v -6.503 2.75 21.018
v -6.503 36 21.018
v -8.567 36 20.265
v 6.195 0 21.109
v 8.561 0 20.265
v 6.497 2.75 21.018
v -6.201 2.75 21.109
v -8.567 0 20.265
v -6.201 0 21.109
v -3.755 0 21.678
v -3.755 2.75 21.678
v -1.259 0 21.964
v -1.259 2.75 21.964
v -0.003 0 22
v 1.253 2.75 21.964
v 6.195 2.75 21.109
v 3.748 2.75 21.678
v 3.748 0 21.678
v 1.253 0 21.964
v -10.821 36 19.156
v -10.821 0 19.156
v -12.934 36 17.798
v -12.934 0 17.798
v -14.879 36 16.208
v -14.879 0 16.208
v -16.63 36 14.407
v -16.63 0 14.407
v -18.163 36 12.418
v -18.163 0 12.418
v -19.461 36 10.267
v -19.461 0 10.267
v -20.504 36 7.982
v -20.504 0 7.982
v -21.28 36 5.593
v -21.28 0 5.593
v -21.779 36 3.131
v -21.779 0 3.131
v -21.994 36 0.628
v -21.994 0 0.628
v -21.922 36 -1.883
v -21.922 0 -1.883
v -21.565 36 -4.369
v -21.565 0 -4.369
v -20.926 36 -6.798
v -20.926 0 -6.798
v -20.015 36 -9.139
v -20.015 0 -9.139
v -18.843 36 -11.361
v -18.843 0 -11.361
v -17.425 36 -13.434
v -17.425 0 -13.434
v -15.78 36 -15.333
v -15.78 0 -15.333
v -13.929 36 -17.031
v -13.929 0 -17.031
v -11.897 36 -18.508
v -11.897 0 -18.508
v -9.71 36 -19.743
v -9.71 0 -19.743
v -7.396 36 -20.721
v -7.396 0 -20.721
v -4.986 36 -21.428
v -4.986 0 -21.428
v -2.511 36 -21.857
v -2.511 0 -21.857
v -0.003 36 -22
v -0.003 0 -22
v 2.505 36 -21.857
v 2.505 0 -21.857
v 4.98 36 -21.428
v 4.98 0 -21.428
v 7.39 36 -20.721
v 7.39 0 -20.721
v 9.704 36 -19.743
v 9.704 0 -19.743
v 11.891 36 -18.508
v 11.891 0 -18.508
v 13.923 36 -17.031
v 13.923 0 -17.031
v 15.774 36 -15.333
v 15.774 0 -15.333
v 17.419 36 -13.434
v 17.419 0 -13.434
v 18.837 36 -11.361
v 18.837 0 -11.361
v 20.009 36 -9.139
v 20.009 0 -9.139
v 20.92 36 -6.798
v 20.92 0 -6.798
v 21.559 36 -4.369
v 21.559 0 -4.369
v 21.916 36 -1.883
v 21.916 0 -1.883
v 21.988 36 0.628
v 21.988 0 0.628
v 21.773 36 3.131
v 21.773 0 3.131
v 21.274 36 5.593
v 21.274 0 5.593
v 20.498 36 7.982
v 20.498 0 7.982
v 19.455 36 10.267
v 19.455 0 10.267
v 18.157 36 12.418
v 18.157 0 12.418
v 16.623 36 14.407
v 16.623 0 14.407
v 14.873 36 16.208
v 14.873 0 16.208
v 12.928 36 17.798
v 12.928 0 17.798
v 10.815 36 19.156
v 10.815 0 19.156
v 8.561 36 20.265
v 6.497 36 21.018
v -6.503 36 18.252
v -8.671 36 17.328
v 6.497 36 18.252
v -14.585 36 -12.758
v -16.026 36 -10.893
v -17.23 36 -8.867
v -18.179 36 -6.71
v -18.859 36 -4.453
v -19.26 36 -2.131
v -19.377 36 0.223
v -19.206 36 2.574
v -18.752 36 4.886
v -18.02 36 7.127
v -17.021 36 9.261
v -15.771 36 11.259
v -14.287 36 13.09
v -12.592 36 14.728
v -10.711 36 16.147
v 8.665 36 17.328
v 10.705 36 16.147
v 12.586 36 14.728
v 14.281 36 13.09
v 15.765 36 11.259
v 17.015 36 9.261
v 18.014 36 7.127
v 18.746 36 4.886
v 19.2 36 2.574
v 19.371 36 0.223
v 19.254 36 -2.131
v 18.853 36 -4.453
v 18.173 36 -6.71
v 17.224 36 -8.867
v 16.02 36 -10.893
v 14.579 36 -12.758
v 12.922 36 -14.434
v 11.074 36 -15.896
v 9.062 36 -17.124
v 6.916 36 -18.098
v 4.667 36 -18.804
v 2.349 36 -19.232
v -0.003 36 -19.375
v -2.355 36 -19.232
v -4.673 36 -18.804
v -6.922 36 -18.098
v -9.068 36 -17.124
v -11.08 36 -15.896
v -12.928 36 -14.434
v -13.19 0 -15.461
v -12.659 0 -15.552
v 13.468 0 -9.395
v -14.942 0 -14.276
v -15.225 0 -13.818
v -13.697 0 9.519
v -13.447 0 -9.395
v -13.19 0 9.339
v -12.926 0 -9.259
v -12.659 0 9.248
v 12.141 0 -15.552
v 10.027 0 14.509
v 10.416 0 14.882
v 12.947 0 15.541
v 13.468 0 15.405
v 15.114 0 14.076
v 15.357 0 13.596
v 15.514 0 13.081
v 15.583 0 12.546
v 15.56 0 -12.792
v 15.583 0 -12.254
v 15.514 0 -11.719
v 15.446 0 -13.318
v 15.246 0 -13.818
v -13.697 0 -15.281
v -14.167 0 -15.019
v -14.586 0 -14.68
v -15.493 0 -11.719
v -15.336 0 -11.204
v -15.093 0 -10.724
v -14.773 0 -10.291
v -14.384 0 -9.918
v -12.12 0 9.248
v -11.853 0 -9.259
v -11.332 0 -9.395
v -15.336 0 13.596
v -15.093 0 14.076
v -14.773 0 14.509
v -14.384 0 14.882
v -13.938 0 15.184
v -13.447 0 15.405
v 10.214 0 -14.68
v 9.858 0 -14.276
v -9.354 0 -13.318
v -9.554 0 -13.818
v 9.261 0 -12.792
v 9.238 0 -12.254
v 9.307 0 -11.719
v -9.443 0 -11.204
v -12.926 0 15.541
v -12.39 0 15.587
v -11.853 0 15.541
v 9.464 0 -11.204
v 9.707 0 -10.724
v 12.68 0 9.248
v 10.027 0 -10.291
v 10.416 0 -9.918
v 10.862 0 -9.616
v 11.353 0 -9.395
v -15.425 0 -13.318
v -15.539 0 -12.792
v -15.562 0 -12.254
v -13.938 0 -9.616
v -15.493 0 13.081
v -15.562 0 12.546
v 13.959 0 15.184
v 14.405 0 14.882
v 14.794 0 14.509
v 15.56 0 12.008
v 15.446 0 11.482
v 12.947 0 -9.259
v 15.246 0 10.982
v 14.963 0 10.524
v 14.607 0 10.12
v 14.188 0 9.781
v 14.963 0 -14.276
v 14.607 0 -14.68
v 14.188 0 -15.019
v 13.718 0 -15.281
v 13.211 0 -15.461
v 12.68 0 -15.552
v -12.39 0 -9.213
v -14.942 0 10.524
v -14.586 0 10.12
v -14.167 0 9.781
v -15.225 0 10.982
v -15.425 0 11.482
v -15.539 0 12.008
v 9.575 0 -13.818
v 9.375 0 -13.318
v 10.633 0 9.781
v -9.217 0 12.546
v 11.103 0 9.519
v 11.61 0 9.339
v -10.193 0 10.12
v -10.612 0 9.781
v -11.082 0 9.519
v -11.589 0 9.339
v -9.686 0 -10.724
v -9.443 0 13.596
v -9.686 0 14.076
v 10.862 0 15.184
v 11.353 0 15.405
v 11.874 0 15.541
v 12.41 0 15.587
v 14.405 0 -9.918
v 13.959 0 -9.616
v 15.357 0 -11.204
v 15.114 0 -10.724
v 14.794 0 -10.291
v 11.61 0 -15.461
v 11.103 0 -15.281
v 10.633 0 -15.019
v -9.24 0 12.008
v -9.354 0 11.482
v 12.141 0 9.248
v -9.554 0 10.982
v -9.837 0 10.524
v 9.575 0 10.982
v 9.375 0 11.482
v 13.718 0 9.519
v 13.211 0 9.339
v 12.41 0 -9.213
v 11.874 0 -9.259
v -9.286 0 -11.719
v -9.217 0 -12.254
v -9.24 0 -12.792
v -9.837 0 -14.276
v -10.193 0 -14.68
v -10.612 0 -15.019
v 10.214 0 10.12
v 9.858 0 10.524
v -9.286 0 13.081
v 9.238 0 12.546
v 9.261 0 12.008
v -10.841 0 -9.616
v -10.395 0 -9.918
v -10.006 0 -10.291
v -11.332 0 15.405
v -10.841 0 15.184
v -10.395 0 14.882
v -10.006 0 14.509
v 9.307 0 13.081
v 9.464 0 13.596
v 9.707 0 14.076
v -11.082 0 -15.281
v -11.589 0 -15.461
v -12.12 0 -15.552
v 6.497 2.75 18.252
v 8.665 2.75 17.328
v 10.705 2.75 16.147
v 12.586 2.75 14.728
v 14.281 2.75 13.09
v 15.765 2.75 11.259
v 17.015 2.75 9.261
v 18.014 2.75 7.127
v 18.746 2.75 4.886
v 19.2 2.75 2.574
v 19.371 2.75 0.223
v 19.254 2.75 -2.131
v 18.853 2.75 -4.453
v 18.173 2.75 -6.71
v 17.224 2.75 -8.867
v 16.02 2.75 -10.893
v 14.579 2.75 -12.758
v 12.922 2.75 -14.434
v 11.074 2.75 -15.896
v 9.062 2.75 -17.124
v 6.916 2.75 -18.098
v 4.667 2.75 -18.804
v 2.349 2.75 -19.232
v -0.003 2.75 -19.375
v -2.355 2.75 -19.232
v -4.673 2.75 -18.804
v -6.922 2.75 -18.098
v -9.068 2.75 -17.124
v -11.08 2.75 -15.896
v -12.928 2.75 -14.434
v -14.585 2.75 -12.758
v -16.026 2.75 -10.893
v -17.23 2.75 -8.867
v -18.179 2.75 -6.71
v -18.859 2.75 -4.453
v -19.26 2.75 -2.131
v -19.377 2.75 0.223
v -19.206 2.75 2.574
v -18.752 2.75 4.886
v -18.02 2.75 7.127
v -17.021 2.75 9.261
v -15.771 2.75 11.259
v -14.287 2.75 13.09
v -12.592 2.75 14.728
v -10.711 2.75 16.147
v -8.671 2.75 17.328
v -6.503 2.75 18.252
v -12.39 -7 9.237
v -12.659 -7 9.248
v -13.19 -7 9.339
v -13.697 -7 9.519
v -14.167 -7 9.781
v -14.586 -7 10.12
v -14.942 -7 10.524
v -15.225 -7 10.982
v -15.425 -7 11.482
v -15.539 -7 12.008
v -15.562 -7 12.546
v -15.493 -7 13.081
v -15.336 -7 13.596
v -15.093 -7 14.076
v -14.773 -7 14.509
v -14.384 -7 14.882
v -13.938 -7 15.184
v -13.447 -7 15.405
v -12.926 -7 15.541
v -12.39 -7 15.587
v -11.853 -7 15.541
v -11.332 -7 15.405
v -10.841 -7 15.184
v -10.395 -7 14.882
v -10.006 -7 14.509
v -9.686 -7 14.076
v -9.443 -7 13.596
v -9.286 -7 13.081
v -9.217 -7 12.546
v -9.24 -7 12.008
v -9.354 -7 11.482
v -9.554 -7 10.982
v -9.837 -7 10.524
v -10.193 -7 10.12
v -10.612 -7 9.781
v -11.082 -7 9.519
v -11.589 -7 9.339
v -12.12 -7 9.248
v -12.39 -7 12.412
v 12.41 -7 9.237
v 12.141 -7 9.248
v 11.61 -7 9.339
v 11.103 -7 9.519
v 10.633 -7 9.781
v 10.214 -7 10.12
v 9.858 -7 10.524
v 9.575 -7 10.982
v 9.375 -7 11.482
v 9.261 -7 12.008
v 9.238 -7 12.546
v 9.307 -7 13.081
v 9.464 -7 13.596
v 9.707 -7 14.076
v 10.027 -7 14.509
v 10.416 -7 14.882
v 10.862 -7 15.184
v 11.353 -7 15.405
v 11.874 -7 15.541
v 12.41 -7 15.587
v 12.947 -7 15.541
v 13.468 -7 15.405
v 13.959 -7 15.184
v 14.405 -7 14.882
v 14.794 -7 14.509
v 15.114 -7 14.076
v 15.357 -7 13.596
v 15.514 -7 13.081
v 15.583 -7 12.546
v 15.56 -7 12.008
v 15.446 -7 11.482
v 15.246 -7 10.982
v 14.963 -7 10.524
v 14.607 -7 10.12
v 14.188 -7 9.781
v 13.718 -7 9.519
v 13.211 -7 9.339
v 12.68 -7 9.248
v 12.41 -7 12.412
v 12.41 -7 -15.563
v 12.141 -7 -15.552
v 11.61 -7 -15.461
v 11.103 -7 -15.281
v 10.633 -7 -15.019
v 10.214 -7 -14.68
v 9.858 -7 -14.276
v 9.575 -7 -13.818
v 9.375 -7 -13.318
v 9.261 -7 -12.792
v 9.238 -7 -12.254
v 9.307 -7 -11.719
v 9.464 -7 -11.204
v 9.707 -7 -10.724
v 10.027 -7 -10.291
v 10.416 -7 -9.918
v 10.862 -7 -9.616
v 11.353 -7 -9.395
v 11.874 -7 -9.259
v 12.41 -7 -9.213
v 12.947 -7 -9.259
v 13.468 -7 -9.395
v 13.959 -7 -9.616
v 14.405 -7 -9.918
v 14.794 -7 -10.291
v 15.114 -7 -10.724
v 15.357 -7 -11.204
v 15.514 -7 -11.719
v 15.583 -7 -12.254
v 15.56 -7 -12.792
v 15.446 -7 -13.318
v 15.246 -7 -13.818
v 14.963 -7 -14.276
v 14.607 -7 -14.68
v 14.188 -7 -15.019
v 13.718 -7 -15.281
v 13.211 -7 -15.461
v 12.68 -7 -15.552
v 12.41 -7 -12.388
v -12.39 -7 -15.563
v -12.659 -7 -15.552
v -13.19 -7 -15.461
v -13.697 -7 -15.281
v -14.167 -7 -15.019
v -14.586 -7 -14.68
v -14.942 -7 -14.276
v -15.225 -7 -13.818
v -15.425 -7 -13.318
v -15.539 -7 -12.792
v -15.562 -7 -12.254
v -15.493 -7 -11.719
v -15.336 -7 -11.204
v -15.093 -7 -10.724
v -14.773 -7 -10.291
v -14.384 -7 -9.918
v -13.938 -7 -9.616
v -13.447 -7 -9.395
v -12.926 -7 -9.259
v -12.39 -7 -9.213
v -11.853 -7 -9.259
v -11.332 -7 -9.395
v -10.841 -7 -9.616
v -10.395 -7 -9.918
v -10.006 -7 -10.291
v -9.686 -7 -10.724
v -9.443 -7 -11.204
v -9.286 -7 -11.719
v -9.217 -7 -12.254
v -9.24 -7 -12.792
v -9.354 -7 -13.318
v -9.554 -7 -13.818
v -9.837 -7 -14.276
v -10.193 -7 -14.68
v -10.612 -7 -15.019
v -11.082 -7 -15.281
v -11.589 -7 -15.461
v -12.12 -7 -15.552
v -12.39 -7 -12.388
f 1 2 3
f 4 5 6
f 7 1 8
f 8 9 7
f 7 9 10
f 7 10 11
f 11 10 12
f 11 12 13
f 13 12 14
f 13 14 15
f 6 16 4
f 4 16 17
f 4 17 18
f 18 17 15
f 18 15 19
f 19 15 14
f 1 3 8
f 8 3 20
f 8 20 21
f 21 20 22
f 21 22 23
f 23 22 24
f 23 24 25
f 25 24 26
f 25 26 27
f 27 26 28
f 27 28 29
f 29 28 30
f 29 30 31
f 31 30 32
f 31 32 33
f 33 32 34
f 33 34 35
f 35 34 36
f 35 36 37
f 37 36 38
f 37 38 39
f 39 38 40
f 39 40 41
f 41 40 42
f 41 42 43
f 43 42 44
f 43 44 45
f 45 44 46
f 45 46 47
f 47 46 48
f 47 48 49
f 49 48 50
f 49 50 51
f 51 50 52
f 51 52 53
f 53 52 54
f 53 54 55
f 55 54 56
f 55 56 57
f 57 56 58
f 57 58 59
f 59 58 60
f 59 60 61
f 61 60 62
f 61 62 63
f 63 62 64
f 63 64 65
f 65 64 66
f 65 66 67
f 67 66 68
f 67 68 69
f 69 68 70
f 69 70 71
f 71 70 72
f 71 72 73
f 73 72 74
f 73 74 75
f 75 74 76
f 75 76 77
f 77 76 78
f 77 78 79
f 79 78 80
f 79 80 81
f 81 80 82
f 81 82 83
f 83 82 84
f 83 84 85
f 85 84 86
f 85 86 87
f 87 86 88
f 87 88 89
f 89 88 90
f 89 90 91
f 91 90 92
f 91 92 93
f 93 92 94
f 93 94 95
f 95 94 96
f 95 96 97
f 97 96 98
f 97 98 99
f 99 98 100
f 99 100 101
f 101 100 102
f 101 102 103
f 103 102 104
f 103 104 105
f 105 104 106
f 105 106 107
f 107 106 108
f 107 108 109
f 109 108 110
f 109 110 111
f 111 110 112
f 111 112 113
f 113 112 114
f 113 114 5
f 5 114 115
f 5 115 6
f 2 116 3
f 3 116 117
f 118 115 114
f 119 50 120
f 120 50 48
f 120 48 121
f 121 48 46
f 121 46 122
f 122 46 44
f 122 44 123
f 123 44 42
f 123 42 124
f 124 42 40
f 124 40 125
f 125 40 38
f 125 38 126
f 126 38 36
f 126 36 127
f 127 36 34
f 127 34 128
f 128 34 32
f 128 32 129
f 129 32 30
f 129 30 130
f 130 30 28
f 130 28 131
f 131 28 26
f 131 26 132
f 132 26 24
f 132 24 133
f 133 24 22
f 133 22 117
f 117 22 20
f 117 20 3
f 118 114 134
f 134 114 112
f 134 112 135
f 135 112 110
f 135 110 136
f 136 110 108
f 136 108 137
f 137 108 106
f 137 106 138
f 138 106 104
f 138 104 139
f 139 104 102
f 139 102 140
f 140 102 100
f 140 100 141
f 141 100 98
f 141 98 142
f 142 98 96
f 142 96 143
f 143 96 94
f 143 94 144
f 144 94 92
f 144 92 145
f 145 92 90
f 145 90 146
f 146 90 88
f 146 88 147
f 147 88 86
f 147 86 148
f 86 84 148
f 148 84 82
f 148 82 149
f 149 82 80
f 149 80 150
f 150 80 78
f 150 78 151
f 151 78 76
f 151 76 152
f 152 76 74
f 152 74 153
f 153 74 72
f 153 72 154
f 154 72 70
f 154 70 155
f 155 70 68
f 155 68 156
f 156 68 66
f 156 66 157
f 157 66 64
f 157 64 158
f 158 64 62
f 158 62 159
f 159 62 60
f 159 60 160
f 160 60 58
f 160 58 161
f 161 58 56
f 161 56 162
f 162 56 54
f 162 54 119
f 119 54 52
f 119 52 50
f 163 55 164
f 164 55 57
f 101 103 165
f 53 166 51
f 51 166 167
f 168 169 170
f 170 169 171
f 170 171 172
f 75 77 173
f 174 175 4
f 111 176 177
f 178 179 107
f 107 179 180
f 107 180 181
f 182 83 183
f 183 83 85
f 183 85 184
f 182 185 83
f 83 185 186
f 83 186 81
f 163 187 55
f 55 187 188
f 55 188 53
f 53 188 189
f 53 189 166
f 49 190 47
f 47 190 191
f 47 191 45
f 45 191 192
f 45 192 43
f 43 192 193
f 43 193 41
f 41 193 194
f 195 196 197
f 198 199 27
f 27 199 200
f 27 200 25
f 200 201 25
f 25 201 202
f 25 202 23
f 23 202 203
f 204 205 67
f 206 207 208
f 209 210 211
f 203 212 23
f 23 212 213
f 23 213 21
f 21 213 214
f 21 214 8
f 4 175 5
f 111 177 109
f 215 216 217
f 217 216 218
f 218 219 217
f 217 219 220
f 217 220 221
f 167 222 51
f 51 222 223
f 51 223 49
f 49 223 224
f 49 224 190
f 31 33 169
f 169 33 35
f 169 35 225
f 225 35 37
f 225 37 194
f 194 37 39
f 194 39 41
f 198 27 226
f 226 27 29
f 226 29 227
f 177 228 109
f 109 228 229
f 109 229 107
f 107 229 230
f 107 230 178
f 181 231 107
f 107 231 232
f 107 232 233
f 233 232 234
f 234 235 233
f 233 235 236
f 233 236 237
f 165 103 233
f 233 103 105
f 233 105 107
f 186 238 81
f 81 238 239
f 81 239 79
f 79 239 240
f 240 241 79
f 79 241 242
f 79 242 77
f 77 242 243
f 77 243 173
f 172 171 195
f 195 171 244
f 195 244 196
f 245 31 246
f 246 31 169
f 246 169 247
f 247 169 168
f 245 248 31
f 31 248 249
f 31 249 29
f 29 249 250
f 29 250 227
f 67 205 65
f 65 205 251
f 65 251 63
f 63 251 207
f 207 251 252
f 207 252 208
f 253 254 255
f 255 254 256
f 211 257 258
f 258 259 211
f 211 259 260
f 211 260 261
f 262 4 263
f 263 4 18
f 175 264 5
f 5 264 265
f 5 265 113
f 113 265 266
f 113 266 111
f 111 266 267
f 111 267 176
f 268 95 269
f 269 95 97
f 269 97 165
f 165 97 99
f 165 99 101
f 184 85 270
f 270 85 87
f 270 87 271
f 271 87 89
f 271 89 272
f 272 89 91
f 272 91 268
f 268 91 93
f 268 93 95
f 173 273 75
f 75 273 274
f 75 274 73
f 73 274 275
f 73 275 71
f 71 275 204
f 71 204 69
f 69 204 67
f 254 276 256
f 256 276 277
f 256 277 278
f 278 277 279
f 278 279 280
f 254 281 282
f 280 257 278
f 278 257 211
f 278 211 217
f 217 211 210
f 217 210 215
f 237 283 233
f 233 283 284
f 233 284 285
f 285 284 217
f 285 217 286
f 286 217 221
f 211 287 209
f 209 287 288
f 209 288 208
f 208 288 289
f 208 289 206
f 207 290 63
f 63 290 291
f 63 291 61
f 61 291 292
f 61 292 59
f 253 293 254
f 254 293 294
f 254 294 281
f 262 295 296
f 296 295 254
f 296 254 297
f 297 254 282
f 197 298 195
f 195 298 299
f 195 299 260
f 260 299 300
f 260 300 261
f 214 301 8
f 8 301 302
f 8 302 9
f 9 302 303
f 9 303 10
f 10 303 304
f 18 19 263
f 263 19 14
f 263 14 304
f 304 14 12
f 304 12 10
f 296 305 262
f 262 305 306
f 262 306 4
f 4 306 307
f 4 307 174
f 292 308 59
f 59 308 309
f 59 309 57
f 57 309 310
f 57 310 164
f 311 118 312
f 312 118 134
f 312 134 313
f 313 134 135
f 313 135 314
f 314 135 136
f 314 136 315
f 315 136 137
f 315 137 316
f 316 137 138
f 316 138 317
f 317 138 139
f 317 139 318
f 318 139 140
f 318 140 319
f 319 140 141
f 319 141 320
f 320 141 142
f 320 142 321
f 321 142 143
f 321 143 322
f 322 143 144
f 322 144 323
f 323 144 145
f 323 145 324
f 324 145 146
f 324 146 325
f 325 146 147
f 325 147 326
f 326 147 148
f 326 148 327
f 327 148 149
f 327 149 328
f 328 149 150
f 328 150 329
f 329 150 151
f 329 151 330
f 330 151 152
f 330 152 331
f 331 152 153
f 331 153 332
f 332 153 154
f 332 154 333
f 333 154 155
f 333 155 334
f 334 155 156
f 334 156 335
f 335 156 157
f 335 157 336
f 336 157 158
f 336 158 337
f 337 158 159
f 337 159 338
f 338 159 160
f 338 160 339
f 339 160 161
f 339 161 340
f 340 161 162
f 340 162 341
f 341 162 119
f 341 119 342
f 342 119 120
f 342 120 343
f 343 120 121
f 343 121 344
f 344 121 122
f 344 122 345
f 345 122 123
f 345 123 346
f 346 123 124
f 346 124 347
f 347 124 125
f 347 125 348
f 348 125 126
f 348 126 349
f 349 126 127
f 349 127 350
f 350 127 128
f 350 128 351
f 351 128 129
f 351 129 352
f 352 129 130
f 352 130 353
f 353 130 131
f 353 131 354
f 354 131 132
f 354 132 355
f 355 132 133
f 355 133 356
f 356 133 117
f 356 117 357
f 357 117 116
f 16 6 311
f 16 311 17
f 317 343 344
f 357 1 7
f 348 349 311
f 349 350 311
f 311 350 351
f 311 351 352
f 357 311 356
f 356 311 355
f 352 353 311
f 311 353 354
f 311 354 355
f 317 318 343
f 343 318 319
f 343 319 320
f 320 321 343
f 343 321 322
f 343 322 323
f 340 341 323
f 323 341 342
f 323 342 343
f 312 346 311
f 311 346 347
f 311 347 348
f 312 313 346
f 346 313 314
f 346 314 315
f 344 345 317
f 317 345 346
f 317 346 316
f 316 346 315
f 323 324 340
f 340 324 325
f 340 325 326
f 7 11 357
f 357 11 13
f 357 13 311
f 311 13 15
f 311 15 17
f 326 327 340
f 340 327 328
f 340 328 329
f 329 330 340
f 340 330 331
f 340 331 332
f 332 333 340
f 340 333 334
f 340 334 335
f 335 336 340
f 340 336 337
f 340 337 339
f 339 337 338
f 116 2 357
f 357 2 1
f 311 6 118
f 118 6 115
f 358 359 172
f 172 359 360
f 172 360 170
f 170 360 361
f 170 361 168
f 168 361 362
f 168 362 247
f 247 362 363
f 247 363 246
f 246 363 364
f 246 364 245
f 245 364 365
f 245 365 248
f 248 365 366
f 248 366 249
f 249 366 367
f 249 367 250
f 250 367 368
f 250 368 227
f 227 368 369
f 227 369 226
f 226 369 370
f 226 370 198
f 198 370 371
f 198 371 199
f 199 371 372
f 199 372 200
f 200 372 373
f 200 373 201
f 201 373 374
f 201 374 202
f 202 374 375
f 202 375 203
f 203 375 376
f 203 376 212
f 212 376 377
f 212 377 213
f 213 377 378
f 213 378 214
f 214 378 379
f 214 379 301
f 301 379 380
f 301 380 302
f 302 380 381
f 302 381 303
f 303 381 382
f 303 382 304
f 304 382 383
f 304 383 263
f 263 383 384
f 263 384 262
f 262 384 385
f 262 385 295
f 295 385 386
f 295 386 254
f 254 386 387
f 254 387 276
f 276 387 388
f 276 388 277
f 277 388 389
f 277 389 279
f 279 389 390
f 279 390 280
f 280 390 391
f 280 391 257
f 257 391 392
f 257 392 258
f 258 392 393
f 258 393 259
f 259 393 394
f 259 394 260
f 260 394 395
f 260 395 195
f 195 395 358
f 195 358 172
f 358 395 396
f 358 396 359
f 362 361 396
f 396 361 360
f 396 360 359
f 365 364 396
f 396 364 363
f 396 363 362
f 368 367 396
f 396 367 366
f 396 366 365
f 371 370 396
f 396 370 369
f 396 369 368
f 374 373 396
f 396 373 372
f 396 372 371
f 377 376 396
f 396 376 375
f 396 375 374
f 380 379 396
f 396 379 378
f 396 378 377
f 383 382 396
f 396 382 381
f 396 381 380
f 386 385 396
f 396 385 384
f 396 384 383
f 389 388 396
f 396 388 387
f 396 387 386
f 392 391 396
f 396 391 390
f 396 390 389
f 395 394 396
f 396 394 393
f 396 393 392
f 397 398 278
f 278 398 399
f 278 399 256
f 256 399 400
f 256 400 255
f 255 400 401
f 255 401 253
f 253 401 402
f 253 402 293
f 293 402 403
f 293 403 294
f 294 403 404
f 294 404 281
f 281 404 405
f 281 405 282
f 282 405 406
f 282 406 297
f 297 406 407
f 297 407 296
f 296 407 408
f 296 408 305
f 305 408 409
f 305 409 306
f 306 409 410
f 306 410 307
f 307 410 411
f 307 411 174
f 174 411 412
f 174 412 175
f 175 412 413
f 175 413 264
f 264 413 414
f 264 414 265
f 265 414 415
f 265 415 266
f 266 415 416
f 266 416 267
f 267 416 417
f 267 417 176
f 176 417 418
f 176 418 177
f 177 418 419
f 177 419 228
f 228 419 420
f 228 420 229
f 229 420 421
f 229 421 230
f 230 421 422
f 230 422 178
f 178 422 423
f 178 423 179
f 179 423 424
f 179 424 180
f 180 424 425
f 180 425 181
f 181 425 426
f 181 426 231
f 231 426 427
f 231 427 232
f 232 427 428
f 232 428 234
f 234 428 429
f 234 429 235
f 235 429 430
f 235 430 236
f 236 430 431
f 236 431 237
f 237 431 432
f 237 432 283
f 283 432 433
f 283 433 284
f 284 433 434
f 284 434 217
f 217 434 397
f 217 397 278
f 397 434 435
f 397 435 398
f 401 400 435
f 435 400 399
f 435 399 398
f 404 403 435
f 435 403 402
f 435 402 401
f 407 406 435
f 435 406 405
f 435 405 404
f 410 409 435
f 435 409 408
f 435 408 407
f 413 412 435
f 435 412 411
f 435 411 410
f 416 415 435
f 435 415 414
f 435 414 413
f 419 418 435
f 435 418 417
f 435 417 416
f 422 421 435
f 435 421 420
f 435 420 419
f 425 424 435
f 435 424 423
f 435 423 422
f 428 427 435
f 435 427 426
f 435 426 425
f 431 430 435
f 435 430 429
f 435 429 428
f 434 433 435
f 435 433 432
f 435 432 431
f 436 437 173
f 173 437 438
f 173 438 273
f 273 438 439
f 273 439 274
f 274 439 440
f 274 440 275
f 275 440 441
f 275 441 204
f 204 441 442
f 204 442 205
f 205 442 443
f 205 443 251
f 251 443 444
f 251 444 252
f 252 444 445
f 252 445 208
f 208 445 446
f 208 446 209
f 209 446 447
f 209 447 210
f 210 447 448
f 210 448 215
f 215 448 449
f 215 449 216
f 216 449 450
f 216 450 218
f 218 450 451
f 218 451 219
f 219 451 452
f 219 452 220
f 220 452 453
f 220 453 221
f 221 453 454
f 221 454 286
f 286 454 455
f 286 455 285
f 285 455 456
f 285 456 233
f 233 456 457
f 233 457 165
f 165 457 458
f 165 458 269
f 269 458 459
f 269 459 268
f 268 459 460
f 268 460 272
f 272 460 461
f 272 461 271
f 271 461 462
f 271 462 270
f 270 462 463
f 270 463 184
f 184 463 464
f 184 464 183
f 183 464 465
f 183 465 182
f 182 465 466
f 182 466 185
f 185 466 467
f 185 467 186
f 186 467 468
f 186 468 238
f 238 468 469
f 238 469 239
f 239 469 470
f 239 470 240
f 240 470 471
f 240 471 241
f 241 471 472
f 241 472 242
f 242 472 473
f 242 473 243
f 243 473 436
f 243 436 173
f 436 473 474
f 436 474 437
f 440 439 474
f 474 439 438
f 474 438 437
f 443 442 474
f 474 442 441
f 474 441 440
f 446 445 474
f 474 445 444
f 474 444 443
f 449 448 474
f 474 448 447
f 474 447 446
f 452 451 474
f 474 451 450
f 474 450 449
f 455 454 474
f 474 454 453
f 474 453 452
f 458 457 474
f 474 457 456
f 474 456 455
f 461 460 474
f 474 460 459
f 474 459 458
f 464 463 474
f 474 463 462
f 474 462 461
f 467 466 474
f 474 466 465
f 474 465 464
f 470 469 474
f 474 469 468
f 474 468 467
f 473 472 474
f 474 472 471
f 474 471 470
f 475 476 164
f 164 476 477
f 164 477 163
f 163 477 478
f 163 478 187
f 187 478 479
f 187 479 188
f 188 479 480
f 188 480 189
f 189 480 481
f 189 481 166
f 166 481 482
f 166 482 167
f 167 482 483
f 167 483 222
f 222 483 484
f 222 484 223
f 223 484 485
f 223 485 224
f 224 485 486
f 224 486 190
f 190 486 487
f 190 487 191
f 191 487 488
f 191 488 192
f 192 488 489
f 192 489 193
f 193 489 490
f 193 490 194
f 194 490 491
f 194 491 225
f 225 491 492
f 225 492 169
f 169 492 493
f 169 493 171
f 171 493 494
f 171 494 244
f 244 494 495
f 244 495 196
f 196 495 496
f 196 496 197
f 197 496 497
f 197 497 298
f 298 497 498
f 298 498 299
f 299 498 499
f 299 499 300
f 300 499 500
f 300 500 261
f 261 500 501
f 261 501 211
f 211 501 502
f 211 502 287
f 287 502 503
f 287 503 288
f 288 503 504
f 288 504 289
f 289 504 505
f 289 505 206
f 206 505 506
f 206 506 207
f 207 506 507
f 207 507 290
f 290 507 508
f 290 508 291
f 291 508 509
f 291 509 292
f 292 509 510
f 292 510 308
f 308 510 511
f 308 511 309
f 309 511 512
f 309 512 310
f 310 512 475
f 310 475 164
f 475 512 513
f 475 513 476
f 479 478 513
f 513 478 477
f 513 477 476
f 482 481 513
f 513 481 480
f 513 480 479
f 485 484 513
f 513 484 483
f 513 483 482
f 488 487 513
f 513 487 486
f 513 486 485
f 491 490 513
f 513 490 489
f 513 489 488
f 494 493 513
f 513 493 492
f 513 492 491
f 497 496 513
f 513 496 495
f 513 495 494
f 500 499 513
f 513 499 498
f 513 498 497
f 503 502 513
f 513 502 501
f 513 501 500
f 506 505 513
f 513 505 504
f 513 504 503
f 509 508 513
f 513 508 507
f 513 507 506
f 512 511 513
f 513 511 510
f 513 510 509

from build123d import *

# Parameters (mm, degrees)
SKETCH1_R           = 22
BOSS_EXTRUDE1_DEPTH = 36
SKETCH3_R           = 19.375
CUT_EXTRUDE1_DEPTH  = 33.25
SKETCH4_W           = 13
SKETCH4_H           = 8.241634072
CUT_EXTRUDE2_DEPTH  = 33.25
SKETCH5_R           = 3.175
BOSS_EXTRUDE2_DEPTH = 7


with BuildPart() as part:
    # Sketch1 → Boss-Extrude1 (new body)
    with BuildSketch(Plane(origin=(0, 0, 0), x_dir=(1, 0, 0), z_dir=(0, 1, 0))):
        Circle(SKETCH1_R)
    extrude(amount=BOSS_EXTRUDE1_DEPTH)

    # Sketch3 → Cut-Extrude1 (cut)
    with BuildSketch(Plane(origin=(0, 36, 0), x_dir=(1, 0, 0), z_dir=(0, 1, 0))):
        Circle(SKETCH3_R)
    extrude(amount=-CUT_EXTRUDE1_DEPTH, mode=Mode.SUBTRACT)

    # Sketch4 → Cut-Extrude2 (cut)
    with BuildSketch(Plane(origin=(0, 36, 0), x_dir=(1, 0, 0), z_dir=(0, 1, 0))):
        with Locations((0, -20.83301946)):
            Rectangle(SKETCH4_W, SKETCH4_H)
    extrude(amount=-CUT_EXTRUDE2_DEPTH, mode=Mode.SUBTRACT)

    # Sketch5 → Boss-Extrude2 (add)
    with BuildSketch(Plane(origin=(0, 0, 0), x_dir=(-1, 0, 0), z_dir=(0, -1, 0))):
        with Locations((12.386484202, -12.411737756)):
            Circle(SKETCH5_R)
        with Locations((-12.413515798, -12.411737756)):
            Circle(SKETCH5_R)
        with Locations((-12.413515798, 12.388262244)):
            Circle(SKETCH5_R)
        with Locations((12.386484202, 12.388262244)):
            Circle(SKETCH5_R)
    extrude(amount=BOSS_EXTRUDE2_DEPTH)


solid = part.part
